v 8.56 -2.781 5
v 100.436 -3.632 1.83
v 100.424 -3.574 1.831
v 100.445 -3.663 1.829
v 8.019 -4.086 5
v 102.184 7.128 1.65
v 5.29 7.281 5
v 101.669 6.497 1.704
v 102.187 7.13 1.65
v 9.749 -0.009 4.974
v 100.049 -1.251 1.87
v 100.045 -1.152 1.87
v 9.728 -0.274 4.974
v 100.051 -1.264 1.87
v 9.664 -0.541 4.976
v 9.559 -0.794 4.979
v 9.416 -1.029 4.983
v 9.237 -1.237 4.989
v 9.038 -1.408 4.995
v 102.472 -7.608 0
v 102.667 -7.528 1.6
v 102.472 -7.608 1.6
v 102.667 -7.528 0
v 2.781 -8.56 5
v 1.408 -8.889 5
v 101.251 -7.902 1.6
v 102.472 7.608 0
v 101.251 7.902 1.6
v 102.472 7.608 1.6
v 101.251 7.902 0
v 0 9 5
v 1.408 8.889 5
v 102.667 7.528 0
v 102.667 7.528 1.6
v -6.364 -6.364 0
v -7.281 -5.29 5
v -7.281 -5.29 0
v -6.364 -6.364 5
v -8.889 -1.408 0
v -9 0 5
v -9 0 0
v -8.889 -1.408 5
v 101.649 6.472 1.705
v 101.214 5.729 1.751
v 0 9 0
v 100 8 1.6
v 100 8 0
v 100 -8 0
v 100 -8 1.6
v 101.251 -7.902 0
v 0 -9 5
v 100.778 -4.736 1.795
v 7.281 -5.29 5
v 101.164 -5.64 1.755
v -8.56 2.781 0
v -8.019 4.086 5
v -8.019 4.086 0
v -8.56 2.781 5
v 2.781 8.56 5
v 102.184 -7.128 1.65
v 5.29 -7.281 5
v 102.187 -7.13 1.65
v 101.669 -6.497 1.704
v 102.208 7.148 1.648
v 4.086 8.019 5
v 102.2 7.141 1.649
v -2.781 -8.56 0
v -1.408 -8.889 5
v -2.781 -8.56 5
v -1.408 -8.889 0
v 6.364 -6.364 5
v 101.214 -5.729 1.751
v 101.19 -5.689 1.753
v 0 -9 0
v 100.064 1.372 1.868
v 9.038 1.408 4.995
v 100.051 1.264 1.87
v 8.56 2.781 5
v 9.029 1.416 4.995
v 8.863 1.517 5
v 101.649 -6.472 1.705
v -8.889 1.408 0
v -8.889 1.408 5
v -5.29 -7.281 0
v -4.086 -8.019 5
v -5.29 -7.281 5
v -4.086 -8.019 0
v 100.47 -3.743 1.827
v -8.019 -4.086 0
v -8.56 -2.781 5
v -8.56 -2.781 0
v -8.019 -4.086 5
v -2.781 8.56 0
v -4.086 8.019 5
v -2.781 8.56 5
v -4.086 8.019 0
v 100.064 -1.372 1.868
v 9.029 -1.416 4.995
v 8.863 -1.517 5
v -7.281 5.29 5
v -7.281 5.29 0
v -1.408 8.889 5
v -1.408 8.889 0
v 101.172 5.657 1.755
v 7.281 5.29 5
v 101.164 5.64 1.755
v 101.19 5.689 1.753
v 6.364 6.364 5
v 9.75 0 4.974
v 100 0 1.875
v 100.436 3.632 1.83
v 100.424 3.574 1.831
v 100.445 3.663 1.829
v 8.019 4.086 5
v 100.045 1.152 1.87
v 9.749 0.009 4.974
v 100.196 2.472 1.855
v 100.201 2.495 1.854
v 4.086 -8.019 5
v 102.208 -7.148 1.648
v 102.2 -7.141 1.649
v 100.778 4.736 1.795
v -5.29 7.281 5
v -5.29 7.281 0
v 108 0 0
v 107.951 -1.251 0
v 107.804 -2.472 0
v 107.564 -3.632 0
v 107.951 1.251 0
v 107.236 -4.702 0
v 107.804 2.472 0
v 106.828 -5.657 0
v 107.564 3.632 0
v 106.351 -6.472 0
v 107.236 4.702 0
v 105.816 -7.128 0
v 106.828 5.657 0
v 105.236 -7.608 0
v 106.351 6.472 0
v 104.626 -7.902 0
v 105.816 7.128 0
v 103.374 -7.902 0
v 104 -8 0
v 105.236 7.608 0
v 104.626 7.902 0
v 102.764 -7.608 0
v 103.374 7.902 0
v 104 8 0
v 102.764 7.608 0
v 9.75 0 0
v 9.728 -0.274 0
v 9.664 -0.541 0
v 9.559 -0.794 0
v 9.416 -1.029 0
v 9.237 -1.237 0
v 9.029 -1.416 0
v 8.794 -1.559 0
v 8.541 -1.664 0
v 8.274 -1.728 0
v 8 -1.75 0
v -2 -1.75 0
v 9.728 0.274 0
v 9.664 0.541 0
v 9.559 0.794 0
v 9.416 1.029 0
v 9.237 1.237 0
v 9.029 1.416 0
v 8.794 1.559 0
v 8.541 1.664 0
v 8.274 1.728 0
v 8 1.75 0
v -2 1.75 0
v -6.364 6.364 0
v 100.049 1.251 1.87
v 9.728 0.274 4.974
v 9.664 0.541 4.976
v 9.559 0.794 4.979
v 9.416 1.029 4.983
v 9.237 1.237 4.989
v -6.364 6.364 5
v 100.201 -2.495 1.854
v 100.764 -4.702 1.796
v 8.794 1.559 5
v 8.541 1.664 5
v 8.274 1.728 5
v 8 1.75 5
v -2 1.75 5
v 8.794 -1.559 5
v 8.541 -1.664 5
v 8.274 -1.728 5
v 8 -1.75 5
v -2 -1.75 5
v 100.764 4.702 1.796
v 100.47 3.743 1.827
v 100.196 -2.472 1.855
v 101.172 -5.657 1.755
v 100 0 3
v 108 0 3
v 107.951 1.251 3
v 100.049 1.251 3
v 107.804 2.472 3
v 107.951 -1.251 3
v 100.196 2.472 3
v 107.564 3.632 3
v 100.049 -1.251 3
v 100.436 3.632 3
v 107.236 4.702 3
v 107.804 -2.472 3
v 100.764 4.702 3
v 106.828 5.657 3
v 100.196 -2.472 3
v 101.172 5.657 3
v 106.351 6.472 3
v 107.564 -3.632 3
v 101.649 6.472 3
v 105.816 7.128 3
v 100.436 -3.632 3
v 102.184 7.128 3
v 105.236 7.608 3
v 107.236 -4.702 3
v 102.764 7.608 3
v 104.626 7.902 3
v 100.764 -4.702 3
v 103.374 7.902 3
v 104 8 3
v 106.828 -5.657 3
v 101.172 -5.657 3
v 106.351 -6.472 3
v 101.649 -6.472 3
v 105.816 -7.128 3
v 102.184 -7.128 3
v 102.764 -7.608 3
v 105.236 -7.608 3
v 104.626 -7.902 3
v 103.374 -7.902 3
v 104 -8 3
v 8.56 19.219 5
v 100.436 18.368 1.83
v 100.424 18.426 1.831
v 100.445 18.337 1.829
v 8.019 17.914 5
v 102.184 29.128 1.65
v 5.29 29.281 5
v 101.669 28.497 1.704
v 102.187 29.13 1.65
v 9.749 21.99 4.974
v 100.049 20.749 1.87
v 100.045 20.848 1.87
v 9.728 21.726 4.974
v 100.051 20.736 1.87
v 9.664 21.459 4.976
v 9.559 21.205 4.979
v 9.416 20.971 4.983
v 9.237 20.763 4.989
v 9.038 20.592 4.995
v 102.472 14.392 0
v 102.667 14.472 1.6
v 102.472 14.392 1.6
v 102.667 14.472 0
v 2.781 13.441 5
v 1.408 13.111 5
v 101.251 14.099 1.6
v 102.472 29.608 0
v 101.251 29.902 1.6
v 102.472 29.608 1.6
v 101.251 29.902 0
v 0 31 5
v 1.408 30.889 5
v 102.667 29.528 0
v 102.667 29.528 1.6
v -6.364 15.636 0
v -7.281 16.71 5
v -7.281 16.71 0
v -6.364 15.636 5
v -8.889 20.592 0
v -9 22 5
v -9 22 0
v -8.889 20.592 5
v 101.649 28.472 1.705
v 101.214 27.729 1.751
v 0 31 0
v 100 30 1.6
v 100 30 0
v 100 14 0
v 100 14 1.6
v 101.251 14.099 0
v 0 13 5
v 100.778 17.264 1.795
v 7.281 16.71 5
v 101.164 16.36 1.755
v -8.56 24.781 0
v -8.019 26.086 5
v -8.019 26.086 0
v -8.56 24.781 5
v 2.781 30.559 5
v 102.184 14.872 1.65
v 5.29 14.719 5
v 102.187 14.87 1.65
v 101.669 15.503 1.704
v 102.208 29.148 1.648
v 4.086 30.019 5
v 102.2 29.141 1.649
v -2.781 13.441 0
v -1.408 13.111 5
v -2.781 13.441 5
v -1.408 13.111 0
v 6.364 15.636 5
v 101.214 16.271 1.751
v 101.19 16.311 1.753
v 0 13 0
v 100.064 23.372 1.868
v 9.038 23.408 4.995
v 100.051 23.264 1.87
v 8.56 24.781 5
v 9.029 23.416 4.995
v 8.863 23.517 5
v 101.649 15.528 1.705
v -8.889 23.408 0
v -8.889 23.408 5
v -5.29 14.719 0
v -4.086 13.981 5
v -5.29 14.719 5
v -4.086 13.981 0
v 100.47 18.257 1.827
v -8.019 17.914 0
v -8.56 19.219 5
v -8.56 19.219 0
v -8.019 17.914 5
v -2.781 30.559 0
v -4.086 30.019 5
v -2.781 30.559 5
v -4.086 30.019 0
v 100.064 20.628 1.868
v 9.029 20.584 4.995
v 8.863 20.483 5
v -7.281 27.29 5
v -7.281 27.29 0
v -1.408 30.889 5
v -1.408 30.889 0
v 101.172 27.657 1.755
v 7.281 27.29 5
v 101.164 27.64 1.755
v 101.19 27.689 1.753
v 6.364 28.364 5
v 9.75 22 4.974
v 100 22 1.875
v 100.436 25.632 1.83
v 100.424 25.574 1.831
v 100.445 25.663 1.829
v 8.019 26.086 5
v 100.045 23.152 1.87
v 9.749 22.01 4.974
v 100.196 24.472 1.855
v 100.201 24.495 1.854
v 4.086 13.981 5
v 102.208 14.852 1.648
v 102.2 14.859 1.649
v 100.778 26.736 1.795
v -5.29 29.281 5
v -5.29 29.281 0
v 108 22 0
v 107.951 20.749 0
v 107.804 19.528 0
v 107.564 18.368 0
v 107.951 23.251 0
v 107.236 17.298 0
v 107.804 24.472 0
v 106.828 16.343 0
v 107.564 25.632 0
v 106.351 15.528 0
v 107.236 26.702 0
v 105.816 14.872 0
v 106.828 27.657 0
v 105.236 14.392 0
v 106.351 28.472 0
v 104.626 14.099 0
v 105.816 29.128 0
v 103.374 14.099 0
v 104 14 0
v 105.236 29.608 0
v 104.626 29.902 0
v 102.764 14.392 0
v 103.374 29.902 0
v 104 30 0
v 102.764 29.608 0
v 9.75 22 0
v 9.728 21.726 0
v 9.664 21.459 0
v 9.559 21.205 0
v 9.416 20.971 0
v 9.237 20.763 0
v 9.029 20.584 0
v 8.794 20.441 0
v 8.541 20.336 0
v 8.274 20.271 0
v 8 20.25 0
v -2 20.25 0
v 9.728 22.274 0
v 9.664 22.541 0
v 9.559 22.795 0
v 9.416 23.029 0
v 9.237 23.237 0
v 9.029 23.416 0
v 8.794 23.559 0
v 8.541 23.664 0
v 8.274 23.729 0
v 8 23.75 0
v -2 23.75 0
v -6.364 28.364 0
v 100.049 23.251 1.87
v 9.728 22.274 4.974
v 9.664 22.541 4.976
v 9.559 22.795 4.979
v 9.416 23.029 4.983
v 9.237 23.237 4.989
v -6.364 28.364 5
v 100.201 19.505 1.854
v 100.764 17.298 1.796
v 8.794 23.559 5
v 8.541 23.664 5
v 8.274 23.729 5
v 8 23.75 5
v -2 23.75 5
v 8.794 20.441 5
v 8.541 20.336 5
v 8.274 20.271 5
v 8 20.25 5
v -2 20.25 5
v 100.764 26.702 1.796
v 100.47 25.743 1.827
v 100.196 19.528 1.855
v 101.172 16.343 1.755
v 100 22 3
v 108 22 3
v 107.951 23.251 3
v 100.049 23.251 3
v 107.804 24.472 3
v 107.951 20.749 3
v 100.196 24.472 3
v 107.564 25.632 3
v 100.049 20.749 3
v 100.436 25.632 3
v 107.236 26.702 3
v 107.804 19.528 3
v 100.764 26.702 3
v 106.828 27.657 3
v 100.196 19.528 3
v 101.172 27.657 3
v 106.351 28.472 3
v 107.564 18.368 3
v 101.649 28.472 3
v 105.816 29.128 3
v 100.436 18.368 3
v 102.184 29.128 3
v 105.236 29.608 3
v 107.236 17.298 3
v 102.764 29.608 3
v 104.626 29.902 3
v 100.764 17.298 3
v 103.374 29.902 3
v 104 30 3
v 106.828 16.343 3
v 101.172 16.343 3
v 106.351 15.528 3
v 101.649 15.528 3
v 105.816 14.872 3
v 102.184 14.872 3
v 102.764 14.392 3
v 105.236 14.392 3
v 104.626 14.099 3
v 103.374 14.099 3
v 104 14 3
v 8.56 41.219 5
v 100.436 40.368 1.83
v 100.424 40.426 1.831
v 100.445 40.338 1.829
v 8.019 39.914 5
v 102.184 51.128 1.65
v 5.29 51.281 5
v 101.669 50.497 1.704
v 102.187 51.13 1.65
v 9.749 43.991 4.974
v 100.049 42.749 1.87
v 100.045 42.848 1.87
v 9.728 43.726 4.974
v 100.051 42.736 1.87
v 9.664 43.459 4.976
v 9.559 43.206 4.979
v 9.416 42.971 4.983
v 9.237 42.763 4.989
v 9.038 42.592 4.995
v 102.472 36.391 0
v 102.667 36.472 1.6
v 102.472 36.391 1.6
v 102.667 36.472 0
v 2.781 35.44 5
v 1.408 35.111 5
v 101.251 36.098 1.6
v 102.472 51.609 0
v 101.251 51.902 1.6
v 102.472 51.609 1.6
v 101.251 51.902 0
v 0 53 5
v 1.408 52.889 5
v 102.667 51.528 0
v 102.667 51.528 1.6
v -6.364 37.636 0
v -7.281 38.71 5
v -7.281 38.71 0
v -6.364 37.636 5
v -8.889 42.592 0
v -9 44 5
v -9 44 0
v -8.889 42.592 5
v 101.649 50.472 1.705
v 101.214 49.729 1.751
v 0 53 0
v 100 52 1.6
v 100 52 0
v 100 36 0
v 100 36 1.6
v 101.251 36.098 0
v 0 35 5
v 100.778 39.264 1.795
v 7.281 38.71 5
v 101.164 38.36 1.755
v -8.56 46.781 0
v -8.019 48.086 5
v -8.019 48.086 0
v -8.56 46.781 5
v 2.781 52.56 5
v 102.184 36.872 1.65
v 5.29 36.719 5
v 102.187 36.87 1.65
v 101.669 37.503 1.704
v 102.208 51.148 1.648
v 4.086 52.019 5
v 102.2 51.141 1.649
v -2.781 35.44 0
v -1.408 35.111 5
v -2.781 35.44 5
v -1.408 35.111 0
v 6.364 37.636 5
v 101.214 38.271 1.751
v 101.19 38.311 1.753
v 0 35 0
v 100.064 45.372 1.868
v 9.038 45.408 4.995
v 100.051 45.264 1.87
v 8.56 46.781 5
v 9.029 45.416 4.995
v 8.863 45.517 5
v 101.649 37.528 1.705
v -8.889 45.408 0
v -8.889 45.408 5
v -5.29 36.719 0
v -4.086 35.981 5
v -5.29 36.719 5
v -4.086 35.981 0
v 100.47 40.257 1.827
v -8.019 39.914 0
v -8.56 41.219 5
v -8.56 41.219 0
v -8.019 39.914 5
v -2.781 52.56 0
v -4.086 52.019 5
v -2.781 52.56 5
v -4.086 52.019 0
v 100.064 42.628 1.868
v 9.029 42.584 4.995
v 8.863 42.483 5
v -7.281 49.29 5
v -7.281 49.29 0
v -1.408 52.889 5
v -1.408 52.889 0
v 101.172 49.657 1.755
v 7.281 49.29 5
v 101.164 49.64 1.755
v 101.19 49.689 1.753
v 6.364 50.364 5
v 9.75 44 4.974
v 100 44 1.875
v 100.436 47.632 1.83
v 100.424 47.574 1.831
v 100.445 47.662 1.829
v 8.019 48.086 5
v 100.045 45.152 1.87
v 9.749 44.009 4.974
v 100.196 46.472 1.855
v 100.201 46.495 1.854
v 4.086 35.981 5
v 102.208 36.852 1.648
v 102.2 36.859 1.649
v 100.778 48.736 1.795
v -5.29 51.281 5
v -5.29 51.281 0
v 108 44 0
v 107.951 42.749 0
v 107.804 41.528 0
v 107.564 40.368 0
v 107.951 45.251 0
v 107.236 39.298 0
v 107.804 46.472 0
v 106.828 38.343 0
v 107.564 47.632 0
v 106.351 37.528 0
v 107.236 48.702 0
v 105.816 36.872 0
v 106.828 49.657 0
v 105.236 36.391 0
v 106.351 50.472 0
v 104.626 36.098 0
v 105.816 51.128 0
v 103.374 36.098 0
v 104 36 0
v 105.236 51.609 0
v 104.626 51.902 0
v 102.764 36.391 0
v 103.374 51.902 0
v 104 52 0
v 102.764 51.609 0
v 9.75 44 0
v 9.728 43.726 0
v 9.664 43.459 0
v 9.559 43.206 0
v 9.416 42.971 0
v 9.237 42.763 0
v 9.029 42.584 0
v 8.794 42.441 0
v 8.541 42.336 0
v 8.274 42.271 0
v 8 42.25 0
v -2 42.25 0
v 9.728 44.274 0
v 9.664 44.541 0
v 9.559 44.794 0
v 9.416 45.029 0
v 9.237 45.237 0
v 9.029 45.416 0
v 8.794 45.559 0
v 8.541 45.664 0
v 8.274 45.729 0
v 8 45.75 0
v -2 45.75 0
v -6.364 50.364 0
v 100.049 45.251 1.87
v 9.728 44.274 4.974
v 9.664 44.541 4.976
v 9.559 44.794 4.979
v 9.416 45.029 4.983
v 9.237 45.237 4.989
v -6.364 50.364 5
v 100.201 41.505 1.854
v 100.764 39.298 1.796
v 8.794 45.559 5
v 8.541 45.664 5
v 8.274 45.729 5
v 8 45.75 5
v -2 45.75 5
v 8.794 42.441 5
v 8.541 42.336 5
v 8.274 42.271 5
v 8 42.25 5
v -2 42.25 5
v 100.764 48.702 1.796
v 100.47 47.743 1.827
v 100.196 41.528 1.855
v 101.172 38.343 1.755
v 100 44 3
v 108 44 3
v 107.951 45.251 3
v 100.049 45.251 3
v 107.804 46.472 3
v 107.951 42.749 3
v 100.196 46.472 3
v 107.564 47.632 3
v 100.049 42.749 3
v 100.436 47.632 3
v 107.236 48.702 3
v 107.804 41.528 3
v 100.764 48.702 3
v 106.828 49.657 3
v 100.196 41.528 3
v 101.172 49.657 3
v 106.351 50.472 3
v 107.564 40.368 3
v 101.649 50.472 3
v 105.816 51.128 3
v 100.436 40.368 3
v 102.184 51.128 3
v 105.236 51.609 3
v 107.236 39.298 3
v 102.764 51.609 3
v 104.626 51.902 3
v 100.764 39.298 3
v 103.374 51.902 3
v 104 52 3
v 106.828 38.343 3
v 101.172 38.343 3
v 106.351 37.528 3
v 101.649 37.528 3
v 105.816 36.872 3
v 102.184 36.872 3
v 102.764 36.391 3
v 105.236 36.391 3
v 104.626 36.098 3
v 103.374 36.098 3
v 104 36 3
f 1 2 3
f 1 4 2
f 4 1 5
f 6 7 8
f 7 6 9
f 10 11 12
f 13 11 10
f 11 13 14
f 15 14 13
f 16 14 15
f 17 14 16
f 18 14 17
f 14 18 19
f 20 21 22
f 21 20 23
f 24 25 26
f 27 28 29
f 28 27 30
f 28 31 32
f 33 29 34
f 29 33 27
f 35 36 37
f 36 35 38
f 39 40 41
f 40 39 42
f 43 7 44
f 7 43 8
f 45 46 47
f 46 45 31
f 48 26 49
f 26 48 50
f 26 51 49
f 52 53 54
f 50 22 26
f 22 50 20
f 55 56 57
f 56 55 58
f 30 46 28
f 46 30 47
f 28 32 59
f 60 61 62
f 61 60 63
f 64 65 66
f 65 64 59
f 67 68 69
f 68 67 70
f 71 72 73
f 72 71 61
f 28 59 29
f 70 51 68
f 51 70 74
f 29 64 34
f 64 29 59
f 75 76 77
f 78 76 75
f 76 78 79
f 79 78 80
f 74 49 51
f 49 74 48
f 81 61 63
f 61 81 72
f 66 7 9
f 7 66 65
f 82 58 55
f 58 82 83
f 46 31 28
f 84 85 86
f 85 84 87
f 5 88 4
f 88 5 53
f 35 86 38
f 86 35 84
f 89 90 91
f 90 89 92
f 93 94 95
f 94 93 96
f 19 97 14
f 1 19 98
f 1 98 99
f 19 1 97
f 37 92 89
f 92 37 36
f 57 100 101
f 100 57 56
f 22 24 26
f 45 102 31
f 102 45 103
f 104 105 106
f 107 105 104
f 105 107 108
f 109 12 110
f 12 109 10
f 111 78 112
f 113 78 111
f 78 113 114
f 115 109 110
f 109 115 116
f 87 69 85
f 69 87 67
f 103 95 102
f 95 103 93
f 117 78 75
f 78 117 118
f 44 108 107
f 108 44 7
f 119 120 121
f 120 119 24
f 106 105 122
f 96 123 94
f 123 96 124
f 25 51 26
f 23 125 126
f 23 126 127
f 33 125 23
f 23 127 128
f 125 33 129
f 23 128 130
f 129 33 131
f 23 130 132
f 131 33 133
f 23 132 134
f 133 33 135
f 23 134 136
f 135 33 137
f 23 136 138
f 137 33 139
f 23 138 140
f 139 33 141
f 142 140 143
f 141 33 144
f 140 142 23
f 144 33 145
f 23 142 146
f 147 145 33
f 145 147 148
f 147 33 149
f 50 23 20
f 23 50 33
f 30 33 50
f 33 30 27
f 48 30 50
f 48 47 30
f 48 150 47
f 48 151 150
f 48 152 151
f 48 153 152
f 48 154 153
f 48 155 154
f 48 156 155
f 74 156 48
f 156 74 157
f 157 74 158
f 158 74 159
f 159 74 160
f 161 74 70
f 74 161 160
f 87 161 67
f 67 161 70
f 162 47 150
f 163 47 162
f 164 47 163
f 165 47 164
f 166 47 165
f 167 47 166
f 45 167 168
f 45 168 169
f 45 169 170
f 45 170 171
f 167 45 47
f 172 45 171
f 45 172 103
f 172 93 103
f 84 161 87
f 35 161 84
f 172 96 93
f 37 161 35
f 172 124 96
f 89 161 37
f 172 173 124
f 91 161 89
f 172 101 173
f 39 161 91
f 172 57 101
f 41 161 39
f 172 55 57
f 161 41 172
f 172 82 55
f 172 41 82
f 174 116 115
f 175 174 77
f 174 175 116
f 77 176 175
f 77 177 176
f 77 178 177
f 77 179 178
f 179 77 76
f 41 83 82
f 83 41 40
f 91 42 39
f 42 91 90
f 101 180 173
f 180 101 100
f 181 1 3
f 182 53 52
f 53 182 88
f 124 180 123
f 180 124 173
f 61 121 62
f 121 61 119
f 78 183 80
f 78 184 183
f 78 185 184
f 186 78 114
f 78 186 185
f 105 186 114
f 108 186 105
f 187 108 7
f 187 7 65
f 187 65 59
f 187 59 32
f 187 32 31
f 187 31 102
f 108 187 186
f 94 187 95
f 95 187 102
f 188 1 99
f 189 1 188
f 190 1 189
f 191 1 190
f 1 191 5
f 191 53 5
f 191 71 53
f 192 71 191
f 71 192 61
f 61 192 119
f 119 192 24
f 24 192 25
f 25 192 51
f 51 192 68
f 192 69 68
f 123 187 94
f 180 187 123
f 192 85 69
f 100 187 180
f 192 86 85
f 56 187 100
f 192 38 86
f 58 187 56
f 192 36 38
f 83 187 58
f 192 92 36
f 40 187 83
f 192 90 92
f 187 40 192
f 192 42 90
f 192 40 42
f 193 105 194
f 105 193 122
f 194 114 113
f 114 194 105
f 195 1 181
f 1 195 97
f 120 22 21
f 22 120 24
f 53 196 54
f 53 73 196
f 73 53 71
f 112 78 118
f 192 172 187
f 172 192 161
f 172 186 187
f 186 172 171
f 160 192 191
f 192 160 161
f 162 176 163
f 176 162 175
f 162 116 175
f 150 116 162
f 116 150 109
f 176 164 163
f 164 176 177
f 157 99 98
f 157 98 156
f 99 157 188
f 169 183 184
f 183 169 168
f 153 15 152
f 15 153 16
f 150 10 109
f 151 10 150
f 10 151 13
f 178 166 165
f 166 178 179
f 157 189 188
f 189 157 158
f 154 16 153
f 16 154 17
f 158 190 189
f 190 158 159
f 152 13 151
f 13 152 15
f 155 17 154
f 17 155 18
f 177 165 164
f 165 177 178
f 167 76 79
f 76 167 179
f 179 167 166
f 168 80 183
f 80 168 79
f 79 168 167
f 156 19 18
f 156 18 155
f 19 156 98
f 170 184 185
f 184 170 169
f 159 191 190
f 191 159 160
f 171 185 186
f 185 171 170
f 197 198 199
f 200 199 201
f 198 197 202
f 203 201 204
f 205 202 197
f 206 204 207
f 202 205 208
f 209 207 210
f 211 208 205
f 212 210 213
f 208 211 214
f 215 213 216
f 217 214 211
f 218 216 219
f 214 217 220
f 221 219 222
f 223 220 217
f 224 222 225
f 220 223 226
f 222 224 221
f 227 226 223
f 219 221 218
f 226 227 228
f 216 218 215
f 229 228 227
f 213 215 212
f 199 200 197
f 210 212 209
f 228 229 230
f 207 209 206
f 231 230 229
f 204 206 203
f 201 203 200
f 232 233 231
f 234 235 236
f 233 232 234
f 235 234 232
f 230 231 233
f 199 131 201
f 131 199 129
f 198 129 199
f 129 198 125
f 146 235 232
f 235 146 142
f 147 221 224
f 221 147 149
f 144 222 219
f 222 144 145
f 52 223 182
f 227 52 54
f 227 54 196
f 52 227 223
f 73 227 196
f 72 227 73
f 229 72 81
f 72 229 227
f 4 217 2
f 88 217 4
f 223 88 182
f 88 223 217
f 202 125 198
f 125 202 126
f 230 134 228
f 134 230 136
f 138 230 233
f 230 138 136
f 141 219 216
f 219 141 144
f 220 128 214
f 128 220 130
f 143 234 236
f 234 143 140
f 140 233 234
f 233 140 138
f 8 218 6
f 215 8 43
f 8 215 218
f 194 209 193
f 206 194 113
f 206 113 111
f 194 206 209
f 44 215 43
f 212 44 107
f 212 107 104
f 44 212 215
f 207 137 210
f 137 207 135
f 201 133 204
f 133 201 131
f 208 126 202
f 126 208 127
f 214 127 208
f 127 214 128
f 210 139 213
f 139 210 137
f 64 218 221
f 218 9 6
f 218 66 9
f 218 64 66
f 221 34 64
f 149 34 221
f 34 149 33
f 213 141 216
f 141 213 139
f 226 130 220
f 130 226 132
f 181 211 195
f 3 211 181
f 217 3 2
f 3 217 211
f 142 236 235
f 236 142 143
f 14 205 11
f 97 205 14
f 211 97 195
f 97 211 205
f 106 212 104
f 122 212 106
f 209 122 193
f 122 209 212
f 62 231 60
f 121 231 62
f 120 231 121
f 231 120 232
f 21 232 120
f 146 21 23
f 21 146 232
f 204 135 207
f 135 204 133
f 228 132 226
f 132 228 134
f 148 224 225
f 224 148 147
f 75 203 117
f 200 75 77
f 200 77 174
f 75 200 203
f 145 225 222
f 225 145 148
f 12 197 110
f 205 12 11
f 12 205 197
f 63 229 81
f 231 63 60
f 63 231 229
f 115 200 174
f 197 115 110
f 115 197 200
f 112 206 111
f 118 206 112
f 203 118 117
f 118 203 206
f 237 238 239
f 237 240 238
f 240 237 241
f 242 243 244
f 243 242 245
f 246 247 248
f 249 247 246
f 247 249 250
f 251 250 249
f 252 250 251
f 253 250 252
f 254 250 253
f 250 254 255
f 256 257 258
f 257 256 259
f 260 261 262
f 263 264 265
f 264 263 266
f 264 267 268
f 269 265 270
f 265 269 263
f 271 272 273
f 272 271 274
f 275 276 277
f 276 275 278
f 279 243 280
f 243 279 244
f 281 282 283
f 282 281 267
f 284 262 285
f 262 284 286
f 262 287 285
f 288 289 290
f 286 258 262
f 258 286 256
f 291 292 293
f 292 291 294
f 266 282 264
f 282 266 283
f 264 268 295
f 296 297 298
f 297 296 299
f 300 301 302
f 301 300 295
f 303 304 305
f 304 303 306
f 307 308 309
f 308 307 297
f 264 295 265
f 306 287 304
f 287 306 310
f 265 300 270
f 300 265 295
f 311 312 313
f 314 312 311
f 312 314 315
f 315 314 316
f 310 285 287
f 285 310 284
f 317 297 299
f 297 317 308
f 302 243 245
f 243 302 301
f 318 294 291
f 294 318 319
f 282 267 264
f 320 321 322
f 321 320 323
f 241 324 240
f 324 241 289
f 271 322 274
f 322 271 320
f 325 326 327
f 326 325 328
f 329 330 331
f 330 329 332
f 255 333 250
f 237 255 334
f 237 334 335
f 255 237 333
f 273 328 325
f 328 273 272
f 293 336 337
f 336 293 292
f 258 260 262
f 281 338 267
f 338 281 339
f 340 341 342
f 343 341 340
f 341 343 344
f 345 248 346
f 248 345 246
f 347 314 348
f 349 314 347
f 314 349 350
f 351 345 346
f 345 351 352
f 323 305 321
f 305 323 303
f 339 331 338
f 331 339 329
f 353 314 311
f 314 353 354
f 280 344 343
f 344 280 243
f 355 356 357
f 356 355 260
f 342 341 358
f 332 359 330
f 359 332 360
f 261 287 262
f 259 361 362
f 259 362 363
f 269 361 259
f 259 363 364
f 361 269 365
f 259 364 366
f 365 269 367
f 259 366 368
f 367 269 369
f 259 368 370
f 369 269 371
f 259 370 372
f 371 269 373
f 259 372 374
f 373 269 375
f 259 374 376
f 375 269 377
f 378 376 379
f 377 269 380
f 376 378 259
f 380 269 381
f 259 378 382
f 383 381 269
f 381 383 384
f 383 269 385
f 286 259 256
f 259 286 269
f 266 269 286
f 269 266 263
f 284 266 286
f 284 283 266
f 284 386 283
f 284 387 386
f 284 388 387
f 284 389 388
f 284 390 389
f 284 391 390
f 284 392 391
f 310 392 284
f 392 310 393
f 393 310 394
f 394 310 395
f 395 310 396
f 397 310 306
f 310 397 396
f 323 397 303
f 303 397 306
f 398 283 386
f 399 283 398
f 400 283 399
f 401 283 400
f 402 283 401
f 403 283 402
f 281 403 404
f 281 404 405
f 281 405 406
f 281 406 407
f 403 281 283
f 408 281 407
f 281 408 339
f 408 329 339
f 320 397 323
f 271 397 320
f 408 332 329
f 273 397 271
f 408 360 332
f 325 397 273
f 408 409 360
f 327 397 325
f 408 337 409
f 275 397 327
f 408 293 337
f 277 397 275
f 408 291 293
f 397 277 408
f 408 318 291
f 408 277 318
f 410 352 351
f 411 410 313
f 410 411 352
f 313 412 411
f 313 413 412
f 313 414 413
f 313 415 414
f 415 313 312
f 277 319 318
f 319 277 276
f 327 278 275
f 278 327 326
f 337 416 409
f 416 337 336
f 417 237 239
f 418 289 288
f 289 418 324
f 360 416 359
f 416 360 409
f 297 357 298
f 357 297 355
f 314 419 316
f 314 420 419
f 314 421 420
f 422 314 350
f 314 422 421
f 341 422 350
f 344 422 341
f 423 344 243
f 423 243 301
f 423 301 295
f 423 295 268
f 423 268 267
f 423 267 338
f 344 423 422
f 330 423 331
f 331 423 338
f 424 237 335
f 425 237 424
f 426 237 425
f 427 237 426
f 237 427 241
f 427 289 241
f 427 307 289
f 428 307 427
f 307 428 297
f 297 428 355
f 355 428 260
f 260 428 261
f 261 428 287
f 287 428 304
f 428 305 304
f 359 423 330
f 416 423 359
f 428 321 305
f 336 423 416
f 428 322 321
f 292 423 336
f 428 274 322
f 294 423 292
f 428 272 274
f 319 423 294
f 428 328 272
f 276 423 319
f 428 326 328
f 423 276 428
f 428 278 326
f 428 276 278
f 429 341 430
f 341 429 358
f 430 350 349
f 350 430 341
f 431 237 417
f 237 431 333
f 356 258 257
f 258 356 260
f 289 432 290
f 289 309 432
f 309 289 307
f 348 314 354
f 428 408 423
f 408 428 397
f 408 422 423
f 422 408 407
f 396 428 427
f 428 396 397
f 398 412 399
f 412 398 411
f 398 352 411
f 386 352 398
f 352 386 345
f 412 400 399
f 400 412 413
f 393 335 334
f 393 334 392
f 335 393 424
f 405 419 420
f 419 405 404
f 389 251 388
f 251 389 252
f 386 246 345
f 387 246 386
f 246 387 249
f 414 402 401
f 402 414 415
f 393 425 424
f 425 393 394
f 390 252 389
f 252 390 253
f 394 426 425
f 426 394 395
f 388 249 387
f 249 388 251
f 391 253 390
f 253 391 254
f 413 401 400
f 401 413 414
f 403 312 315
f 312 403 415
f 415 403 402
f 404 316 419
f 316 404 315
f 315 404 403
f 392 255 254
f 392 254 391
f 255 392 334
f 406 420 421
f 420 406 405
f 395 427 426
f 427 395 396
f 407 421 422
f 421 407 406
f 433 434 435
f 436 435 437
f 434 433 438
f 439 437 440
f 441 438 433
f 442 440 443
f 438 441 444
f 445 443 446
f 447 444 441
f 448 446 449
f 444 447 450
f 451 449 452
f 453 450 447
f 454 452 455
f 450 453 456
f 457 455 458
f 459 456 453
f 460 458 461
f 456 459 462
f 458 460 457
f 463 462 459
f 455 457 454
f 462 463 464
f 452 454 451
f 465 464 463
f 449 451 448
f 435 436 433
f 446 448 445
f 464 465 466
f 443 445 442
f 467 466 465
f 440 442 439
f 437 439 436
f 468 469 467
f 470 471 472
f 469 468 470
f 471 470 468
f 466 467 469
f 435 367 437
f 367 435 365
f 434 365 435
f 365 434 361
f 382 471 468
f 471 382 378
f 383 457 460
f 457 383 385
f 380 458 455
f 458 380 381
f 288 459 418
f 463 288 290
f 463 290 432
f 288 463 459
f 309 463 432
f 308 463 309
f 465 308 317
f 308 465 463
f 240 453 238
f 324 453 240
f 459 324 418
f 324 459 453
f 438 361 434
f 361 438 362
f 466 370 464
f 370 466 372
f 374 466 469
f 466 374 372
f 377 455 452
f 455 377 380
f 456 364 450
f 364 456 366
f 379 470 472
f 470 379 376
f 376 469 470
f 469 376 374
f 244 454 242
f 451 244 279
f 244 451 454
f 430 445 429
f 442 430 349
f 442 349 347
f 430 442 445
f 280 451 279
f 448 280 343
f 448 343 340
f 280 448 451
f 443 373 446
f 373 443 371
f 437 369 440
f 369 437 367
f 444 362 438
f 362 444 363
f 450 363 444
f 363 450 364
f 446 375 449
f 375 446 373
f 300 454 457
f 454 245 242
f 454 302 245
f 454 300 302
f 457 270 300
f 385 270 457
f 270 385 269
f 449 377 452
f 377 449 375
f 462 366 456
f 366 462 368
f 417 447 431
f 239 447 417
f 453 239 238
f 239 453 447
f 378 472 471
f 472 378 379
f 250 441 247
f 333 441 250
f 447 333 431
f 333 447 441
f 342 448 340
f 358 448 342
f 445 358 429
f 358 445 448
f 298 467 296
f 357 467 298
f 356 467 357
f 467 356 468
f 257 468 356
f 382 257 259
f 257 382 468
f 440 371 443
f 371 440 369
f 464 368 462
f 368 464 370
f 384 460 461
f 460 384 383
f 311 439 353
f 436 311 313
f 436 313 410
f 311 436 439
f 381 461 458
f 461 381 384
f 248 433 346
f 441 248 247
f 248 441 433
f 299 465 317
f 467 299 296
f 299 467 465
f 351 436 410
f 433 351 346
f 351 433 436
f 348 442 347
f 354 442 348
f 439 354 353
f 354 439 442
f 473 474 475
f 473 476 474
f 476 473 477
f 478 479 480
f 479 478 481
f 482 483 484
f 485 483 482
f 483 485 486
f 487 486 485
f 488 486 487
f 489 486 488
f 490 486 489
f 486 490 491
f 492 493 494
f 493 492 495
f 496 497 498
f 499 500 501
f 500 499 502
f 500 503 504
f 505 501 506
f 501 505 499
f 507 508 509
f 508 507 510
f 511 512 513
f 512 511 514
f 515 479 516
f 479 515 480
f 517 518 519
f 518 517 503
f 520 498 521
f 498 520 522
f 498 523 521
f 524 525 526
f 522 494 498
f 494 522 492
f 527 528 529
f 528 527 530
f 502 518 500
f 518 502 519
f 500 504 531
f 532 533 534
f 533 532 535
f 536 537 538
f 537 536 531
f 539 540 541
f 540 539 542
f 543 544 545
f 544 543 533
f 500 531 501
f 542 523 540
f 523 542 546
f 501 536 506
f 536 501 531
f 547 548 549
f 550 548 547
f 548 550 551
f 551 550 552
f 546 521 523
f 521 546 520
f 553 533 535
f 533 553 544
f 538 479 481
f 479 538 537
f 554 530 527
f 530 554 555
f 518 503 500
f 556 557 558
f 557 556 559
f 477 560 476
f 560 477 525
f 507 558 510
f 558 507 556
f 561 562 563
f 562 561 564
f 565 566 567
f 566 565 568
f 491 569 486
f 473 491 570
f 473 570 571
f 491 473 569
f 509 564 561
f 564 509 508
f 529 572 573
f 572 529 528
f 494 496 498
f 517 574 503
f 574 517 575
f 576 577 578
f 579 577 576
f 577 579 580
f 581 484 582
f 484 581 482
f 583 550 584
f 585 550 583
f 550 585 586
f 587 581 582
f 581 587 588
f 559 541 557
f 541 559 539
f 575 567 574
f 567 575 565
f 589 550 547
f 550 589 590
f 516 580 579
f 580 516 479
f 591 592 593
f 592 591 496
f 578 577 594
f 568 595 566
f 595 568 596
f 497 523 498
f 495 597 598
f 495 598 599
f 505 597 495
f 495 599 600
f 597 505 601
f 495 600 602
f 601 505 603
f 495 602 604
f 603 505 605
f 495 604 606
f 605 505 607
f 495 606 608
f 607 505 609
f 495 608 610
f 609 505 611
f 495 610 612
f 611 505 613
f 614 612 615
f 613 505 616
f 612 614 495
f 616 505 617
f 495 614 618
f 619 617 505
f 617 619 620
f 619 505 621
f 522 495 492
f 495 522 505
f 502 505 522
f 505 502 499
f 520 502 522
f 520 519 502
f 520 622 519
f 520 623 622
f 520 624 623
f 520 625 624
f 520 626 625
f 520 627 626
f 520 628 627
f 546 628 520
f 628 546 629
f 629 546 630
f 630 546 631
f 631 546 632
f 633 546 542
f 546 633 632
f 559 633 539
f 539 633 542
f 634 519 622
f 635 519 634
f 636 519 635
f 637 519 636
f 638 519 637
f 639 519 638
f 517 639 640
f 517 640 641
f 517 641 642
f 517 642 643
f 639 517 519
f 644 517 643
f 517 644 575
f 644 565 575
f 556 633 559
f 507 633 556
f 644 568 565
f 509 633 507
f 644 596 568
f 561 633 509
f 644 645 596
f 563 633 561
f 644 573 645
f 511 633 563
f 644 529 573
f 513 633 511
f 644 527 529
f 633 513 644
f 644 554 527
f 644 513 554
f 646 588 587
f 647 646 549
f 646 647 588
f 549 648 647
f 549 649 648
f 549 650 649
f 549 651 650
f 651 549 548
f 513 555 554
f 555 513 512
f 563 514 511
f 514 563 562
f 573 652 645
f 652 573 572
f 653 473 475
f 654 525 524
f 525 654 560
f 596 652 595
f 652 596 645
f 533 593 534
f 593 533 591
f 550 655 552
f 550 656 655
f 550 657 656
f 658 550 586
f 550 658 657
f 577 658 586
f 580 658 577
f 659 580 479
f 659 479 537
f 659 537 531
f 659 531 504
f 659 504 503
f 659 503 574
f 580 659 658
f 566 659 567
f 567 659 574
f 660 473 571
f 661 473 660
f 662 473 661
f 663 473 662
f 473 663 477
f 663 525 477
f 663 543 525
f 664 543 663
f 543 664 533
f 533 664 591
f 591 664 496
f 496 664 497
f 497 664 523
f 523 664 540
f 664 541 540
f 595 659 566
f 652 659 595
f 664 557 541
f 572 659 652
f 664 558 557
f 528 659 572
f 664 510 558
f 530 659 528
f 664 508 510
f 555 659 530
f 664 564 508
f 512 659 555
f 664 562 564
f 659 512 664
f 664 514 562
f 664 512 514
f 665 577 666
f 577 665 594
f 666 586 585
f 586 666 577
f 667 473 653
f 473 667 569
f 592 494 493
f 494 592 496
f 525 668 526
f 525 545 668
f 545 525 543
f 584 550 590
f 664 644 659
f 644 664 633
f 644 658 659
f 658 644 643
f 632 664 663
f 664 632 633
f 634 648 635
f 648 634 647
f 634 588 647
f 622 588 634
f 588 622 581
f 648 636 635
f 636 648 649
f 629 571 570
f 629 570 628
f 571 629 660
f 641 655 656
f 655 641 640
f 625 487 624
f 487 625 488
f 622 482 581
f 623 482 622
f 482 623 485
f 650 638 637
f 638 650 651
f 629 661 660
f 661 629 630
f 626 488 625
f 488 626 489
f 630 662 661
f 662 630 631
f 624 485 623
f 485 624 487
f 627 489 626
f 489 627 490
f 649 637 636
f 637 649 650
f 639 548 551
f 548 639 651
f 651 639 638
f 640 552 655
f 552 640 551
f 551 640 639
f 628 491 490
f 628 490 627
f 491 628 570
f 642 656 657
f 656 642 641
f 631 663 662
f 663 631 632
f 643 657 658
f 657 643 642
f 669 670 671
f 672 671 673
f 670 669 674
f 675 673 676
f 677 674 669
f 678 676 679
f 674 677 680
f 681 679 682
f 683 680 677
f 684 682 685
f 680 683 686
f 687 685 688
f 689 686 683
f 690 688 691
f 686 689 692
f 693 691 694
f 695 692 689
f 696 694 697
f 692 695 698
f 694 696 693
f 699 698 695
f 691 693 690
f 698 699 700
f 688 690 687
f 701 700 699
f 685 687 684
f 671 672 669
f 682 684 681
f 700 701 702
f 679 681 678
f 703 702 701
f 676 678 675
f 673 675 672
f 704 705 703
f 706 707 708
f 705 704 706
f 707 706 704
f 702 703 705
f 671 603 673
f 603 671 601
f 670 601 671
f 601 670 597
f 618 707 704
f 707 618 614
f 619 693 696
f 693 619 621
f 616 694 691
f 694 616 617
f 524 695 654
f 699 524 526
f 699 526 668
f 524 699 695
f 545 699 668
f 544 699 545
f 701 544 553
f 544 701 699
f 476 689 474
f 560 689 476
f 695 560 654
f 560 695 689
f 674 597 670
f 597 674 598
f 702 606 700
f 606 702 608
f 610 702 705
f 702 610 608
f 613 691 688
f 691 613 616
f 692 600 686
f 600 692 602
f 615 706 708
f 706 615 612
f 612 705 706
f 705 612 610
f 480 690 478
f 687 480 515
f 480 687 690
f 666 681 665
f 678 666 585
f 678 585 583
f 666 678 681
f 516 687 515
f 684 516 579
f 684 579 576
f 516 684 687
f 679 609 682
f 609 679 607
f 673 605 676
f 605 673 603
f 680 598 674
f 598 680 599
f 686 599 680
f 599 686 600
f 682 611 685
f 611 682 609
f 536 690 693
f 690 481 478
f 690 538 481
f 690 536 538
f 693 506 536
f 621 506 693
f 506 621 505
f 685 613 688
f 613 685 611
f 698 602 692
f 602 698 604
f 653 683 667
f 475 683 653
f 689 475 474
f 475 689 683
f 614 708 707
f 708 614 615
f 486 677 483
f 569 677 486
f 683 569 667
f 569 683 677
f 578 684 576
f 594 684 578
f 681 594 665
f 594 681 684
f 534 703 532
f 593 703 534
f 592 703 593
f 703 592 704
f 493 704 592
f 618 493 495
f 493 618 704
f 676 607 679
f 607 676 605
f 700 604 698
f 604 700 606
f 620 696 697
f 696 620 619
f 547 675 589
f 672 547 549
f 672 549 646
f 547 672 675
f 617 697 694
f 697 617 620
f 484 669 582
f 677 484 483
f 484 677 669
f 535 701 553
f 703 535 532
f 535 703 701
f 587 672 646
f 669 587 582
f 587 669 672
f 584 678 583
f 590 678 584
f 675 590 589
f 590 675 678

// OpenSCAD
// @title Bicycle Tyre Levers (x3)
// @category Transport
// @material PETG or Nylon (PLA snaps)
// @print Flat, 100% infill
// @summary Lift a bicycle, cart or wheelbarrow tyre off the rim to fix a puncture without damaging the tube. The notch hooks onto a spoke to hold the first lever while you use the second.
// @use Deflate fully. Push the tyre bead into the rim's centre channel all round. Hook lever 1 under the bead opposite the valve, lever down and clip to a spoke. Insert lever 2 10cm along and slide it round. See Transport > Bicycle Repair.

$fn = 40;
module lever() {
  difference() {
    hull() {
      translate([0,0,0]) cylinder(d=18, h=5);
      translate([100,0,0]) cylinder(d=16, h=1.6);
    }
    // spoke hook
    translate([-2,-1.75,-1]) cube([10,3.5,8]);
    translate([8,0,-1]) cylinder(d=3.5, h=8);
  }
  // lip at the scoop end
  translate([104,0,0]) scale([0.5,1,1]) cylinder(d=16, h=3);
}
for (i=[0:2]) translate([0, i*22, 0]) lever();
